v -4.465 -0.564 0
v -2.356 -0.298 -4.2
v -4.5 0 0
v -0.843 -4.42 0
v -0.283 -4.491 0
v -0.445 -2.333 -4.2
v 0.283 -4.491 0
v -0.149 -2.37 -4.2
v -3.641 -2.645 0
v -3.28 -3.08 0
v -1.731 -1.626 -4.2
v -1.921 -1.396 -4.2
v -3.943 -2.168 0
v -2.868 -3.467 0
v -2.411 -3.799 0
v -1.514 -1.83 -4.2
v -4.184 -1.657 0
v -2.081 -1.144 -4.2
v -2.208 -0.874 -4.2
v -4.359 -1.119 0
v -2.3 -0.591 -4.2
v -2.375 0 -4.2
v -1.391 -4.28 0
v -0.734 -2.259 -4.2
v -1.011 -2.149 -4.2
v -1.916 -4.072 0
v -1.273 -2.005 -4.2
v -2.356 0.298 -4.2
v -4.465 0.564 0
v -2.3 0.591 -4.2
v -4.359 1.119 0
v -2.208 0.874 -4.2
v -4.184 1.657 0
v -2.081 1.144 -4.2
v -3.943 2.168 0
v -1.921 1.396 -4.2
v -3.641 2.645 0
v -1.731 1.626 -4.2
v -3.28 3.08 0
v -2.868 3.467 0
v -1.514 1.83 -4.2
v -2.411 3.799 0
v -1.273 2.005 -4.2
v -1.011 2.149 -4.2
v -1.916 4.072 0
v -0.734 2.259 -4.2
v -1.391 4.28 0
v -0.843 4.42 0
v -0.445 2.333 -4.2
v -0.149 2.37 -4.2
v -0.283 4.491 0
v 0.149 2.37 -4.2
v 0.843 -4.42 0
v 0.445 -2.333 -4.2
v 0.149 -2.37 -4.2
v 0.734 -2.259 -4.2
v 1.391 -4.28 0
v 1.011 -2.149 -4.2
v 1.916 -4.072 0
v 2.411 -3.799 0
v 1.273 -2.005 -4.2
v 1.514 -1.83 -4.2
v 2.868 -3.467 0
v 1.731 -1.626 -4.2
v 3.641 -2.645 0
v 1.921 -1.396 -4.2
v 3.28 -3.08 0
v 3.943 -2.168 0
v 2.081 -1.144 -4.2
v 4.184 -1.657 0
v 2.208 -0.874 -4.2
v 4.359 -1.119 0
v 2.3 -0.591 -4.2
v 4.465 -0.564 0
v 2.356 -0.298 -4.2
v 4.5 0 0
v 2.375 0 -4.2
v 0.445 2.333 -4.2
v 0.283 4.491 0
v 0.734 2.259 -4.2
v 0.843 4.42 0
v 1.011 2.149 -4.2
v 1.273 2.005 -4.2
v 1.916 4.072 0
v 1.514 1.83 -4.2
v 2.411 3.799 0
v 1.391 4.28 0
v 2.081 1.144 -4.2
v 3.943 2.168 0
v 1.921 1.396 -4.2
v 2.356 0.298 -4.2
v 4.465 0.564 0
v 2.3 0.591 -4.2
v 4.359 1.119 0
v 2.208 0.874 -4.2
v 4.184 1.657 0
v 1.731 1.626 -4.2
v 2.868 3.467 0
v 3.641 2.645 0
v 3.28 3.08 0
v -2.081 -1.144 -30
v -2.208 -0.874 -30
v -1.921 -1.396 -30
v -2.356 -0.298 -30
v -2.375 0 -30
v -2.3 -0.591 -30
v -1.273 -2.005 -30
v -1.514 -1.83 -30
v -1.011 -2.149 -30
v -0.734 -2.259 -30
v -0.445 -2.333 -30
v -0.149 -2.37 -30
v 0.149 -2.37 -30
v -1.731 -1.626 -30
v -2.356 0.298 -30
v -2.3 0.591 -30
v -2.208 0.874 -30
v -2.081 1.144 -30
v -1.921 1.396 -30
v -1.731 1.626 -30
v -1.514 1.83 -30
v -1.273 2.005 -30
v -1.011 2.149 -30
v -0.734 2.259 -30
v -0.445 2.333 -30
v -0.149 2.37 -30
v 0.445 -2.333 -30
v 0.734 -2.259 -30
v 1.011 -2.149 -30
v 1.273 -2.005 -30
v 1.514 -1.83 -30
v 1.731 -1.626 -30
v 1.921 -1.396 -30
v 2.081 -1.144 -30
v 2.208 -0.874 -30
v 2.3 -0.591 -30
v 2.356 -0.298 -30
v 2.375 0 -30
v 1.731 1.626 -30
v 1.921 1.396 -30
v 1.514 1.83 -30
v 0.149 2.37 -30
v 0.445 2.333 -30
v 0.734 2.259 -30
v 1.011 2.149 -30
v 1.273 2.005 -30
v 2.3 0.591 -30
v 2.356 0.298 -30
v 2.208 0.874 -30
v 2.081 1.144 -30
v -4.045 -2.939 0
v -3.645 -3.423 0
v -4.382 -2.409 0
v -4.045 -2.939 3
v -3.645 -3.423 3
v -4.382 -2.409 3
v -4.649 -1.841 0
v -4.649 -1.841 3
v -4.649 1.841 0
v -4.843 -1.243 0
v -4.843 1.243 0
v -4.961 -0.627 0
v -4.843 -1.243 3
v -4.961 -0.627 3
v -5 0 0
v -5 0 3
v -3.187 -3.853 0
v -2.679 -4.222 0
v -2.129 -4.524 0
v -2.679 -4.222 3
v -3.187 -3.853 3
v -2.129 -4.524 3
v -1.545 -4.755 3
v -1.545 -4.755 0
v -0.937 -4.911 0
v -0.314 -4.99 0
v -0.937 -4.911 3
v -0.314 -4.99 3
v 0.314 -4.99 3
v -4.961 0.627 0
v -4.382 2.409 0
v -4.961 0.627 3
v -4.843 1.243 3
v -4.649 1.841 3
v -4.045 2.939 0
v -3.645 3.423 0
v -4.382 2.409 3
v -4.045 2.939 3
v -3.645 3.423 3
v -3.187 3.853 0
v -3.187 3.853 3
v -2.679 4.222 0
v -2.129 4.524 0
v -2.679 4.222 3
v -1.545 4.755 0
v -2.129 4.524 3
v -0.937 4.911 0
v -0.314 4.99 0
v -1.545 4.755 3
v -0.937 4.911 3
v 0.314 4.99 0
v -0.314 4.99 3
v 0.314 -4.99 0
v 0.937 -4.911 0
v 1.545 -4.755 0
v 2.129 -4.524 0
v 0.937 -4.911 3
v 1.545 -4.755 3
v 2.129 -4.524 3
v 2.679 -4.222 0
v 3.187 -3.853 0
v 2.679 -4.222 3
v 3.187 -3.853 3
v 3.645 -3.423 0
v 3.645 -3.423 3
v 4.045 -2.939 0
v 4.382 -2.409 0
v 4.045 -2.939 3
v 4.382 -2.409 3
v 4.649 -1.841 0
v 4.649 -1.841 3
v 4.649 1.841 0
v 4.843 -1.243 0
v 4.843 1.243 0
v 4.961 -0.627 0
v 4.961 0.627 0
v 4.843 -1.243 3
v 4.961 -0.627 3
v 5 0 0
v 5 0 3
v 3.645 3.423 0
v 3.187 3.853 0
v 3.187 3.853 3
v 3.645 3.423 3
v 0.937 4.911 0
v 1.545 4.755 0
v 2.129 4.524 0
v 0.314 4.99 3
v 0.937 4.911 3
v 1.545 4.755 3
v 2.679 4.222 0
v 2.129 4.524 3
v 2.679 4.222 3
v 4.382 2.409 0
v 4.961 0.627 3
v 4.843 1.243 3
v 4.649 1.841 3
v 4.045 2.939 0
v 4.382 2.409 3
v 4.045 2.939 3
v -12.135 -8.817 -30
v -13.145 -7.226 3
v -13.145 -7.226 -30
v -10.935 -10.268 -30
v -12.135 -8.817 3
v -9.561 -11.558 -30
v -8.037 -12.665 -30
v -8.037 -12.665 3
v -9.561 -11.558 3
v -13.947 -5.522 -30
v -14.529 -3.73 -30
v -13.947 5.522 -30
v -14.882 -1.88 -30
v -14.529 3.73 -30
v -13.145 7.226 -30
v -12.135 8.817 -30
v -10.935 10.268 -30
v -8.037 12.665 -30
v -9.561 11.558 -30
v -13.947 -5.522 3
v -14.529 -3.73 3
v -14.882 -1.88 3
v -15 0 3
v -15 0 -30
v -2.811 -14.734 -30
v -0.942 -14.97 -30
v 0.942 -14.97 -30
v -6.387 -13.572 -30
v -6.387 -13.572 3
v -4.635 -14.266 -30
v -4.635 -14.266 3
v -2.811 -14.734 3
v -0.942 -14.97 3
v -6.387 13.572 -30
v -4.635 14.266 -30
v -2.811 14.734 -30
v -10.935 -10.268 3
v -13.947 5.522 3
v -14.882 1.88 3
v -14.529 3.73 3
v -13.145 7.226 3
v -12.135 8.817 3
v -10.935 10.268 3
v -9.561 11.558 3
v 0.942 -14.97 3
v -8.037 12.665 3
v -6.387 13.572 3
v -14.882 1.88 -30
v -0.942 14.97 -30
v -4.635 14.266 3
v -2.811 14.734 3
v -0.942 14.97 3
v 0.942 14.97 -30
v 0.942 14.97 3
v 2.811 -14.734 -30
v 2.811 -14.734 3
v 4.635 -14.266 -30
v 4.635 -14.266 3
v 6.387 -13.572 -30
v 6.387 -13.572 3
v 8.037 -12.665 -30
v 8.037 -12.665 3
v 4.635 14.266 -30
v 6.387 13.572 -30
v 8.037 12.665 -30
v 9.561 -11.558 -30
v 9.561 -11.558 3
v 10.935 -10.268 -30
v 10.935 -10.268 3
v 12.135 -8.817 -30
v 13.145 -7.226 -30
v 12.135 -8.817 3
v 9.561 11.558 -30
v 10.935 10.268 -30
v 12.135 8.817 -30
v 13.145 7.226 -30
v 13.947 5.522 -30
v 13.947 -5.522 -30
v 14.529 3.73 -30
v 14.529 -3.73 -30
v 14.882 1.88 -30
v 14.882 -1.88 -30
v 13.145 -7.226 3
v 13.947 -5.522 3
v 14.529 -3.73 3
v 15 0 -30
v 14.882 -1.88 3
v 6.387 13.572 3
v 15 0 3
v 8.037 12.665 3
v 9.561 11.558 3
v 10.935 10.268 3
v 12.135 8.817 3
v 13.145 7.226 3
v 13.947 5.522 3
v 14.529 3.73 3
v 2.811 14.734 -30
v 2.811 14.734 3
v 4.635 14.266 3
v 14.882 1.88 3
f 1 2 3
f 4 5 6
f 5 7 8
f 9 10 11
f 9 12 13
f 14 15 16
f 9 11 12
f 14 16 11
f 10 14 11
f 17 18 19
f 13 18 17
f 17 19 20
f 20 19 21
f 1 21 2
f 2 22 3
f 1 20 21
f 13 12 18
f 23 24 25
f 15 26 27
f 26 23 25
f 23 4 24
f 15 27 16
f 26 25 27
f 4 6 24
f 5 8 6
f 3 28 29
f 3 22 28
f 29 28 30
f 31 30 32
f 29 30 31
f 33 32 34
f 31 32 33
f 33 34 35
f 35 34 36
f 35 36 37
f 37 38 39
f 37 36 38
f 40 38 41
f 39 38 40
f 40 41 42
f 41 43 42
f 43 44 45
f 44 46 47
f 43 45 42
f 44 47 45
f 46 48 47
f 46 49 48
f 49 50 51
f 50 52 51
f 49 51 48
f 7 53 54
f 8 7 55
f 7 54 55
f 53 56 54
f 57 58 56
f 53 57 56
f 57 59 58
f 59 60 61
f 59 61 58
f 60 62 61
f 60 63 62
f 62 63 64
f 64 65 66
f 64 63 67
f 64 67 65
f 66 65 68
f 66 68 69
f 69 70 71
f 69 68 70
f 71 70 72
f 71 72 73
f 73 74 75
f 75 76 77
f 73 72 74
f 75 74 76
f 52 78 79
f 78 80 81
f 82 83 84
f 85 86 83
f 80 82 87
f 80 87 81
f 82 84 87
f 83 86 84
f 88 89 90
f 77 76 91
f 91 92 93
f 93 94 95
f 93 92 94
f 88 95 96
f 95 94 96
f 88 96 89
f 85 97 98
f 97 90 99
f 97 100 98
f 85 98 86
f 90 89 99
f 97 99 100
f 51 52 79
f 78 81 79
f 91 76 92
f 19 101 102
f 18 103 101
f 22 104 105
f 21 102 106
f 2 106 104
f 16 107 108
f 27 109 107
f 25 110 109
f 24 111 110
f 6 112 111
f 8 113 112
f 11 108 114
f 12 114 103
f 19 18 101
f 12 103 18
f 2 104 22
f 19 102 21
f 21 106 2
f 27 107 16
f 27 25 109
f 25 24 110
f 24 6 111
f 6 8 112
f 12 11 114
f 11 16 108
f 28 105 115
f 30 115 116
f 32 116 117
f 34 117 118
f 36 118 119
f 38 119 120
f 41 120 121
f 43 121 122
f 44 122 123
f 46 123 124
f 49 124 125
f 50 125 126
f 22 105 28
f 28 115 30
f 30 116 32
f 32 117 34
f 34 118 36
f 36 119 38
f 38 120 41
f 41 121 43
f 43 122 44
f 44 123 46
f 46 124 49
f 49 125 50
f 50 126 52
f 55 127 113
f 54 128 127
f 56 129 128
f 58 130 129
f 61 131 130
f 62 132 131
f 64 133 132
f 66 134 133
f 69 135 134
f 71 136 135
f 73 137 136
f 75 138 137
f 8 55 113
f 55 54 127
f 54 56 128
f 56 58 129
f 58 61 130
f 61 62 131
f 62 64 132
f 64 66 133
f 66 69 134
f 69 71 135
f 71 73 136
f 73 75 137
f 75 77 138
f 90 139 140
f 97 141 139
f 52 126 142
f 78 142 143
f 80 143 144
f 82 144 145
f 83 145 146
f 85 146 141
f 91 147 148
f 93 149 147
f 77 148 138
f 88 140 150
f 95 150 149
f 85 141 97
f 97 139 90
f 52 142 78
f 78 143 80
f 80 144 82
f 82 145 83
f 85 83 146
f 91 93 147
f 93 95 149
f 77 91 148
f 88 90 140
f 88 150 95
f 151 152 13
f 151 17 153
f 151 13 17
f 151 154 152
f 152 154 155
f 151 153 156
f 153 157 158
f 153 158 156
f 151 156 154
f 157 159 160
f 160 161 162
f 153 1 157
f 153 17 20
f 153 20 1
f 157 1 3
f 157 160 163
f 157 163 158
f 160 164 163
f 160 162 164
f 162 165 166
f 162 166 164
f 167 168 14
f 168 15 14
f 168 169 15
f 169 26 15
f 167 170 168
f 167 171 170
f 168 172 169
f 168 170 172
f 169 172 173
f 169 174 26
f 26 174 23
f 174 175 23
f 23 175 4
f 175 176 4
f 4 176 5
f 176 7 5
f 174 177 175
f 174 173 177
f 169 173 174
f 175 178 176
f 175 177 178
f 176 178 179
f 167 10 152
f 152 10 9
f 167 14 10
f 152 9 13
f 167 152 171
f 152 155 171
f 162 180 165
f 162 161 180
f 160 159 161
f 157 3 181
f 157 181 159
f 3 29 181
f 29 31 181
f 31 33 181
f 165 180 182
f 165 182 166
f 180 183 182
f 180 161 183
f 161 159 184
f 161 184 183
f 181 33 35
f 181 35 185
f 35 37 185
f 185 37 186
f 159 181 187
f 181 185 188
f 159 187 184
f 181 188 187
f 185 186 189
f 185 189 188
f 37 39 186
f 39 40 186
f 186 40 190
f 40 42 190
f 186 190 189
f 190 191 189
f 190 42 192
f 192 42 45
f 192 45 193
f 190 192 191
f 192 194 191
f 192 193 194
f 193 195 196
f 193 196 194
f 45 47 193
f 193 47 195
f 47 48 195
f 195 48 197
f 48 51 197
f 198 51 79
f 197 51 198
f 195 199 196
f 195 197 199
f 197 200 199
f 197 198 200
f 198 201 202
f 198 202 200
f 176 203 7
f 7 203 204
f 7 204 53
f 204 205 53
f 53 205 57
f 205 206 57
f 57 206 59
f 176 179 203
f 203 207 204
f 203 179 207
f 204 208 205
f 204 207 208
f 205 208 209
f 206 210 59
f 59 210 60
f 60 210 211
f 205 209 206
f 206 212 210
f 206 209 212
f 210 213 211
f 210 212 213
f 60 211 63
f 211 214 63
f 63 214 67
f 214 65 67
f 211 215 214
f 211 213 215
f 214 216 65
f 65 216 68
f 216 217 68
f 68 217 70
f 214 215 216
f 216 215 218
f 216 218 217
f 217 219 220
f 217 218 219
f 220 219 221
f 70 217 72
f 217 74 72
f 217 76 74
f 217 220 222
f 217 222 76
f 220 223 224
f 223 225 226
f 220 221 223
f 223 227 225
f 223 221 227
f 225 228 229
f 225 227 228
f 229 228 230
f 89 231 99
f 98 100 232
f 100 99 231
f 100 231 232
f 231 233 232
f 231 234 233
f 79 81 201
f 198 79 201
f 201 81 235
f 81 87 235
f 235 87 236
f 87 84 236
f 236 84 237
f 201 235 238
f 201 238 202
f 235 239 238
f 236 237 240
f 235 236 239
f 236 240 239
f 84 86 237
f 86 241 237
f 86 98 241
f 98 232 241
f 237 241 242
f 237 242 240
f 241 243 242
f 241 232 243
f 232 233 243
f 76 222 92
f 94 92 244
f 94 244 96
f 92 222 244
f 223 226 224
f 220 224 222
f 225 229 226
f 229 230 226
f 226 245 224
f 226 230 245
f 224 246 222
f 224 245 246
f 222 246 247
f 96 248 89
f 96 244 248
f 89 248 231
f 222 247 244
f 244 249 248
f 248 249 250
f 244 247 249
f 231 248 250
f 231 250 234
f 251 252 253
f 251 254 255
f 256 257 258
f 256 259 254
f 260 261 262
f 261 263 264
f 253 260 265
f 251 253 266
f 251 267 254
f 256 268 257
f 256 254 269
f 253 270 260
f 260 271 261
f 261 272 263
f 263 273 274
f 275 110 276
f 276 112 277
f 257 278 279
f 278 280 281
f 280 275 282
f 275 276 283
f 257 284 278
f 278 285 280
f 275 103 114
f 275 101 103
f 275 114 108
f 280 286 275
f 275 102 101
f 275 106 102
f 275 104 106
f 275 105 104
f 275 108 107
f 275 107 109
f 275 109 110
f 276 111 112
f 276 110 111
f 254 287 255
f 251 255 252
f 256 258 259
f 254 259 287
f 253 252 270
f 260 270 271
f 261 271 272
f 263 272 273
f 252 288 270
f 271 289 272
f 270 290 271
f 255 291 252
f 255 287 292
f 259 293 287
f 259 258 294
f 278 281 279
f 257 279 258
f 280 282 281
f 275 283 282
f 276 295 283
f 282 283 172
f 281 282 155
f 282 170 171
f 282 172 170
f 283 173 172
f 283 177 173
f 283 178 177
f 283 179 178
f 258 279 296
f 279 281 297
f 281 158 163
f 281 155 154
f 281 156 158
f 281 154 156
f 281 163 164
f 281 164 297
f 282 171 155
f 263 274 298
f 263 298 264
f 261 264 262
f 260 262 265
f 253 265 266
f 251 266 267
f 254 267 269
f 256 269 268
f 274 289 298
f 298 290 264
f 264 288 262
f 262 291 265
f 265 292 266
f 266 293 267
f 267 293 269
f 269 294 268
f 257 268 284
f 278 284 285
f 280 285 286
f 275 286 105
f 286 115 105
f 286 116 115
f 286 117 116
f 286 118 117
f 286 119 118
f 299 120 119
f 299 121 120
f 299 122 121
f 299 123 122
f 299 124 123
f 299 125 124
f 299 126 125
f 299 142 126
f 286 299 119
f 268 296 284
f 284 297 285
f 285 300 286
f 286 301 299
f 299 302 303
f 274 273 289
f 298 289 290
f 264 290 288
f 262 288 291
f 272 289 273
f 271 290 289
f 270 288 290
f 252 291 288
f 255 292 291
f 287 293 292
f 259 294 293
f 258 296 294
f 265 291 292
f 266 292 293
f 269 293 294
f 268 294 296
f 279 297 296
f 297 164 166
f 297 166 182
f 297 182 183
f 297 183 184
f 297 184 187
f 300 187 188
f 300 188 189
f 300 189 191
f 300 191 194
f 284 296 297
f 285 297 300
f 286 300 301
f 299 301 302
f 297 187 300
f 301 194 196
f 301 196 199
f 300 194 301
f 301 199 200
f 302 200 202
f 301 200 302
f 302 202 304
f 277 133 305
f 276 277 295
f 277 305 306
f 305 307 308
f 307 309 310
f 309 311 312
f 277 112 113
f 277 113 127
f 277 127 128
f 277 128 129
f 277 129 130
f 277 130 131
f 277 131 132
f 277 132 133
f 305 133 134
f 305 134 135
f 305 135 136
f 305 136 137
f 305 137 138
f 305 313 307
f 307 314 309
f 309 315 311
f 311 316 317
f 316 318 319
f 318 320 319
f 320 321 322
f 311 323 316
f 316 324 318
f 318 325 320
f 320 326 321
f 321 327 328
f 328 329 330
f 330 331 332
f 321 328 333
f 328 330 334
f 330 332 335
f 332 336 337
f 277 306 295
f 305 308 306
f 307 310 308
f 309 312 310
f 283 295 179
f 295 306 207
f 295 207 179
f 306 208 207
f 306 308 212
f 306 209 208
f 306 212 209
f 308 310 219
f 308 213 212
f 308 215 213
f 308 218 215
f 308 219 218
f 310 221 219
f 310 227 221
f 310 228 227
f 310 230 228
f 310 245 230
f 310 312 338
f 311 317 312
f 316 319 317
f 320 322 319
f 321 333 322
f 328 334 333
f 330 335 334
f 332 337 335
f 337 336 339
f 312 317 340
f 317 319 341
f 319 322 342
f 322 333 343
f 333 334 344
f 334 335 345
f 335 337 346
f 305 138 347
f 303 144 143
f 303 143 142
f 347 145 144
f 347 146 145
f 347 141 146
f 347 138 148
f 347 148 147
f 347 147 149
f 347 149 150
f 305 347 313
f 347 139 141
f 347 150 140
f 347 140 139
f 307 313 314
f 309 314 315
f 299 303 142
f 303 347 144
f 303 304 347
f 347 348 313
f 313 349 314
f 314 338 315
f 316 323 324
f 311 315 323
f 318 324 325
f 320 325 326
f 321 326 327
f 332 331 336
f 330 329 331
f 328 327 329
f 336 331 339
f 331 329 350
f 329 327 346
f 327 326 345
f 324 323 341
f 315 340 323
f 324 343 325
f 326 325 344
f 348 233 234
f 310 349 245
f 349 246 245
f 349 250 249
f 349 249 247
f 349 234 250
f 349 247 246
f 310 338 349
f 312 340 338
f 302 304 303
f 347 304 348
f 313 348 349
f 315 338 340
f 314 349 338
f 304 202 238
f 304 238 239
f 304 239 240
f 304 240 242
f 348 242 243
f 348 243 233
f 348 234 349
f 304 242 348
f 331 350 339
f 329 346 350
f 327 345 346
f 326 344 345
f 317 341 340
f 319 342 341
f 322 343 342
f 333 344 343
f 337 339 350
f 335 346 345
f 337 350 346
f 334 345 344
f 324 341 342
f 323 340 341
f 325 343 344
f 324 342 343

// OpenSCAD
$fn = 50;

difference() {
	union() {
		translate(v = [0, 0, -30.0]) {
			cylinder(h = 33, r = 15.0);
		}
	}
	union() {
		translate(v = [0, 0, 0]) {
			rotate(a = [0, 0, 0]) {
				difference() {
					union() {
						translate(v = [0, 0, -33.0]) {
							cylinder(h = 33, r = 2.25);
						}
						translate(v = [0, 0, -4.2]) {
							cylinder(h = 4.2, r1 = 2.375, r2 = 4.5);
						}
						translate(v = [0, 0, -33.0]) {
							cylinder(h = 33, r = 2.375);
						}
						translate(v = [0, 0, -33.0]) {
							cylinder(h = 33, r = 2.25);
						}
					}
					union();
				}
			}
		}
		#cylinder(h = 3, r = 5.0);
	}
}
